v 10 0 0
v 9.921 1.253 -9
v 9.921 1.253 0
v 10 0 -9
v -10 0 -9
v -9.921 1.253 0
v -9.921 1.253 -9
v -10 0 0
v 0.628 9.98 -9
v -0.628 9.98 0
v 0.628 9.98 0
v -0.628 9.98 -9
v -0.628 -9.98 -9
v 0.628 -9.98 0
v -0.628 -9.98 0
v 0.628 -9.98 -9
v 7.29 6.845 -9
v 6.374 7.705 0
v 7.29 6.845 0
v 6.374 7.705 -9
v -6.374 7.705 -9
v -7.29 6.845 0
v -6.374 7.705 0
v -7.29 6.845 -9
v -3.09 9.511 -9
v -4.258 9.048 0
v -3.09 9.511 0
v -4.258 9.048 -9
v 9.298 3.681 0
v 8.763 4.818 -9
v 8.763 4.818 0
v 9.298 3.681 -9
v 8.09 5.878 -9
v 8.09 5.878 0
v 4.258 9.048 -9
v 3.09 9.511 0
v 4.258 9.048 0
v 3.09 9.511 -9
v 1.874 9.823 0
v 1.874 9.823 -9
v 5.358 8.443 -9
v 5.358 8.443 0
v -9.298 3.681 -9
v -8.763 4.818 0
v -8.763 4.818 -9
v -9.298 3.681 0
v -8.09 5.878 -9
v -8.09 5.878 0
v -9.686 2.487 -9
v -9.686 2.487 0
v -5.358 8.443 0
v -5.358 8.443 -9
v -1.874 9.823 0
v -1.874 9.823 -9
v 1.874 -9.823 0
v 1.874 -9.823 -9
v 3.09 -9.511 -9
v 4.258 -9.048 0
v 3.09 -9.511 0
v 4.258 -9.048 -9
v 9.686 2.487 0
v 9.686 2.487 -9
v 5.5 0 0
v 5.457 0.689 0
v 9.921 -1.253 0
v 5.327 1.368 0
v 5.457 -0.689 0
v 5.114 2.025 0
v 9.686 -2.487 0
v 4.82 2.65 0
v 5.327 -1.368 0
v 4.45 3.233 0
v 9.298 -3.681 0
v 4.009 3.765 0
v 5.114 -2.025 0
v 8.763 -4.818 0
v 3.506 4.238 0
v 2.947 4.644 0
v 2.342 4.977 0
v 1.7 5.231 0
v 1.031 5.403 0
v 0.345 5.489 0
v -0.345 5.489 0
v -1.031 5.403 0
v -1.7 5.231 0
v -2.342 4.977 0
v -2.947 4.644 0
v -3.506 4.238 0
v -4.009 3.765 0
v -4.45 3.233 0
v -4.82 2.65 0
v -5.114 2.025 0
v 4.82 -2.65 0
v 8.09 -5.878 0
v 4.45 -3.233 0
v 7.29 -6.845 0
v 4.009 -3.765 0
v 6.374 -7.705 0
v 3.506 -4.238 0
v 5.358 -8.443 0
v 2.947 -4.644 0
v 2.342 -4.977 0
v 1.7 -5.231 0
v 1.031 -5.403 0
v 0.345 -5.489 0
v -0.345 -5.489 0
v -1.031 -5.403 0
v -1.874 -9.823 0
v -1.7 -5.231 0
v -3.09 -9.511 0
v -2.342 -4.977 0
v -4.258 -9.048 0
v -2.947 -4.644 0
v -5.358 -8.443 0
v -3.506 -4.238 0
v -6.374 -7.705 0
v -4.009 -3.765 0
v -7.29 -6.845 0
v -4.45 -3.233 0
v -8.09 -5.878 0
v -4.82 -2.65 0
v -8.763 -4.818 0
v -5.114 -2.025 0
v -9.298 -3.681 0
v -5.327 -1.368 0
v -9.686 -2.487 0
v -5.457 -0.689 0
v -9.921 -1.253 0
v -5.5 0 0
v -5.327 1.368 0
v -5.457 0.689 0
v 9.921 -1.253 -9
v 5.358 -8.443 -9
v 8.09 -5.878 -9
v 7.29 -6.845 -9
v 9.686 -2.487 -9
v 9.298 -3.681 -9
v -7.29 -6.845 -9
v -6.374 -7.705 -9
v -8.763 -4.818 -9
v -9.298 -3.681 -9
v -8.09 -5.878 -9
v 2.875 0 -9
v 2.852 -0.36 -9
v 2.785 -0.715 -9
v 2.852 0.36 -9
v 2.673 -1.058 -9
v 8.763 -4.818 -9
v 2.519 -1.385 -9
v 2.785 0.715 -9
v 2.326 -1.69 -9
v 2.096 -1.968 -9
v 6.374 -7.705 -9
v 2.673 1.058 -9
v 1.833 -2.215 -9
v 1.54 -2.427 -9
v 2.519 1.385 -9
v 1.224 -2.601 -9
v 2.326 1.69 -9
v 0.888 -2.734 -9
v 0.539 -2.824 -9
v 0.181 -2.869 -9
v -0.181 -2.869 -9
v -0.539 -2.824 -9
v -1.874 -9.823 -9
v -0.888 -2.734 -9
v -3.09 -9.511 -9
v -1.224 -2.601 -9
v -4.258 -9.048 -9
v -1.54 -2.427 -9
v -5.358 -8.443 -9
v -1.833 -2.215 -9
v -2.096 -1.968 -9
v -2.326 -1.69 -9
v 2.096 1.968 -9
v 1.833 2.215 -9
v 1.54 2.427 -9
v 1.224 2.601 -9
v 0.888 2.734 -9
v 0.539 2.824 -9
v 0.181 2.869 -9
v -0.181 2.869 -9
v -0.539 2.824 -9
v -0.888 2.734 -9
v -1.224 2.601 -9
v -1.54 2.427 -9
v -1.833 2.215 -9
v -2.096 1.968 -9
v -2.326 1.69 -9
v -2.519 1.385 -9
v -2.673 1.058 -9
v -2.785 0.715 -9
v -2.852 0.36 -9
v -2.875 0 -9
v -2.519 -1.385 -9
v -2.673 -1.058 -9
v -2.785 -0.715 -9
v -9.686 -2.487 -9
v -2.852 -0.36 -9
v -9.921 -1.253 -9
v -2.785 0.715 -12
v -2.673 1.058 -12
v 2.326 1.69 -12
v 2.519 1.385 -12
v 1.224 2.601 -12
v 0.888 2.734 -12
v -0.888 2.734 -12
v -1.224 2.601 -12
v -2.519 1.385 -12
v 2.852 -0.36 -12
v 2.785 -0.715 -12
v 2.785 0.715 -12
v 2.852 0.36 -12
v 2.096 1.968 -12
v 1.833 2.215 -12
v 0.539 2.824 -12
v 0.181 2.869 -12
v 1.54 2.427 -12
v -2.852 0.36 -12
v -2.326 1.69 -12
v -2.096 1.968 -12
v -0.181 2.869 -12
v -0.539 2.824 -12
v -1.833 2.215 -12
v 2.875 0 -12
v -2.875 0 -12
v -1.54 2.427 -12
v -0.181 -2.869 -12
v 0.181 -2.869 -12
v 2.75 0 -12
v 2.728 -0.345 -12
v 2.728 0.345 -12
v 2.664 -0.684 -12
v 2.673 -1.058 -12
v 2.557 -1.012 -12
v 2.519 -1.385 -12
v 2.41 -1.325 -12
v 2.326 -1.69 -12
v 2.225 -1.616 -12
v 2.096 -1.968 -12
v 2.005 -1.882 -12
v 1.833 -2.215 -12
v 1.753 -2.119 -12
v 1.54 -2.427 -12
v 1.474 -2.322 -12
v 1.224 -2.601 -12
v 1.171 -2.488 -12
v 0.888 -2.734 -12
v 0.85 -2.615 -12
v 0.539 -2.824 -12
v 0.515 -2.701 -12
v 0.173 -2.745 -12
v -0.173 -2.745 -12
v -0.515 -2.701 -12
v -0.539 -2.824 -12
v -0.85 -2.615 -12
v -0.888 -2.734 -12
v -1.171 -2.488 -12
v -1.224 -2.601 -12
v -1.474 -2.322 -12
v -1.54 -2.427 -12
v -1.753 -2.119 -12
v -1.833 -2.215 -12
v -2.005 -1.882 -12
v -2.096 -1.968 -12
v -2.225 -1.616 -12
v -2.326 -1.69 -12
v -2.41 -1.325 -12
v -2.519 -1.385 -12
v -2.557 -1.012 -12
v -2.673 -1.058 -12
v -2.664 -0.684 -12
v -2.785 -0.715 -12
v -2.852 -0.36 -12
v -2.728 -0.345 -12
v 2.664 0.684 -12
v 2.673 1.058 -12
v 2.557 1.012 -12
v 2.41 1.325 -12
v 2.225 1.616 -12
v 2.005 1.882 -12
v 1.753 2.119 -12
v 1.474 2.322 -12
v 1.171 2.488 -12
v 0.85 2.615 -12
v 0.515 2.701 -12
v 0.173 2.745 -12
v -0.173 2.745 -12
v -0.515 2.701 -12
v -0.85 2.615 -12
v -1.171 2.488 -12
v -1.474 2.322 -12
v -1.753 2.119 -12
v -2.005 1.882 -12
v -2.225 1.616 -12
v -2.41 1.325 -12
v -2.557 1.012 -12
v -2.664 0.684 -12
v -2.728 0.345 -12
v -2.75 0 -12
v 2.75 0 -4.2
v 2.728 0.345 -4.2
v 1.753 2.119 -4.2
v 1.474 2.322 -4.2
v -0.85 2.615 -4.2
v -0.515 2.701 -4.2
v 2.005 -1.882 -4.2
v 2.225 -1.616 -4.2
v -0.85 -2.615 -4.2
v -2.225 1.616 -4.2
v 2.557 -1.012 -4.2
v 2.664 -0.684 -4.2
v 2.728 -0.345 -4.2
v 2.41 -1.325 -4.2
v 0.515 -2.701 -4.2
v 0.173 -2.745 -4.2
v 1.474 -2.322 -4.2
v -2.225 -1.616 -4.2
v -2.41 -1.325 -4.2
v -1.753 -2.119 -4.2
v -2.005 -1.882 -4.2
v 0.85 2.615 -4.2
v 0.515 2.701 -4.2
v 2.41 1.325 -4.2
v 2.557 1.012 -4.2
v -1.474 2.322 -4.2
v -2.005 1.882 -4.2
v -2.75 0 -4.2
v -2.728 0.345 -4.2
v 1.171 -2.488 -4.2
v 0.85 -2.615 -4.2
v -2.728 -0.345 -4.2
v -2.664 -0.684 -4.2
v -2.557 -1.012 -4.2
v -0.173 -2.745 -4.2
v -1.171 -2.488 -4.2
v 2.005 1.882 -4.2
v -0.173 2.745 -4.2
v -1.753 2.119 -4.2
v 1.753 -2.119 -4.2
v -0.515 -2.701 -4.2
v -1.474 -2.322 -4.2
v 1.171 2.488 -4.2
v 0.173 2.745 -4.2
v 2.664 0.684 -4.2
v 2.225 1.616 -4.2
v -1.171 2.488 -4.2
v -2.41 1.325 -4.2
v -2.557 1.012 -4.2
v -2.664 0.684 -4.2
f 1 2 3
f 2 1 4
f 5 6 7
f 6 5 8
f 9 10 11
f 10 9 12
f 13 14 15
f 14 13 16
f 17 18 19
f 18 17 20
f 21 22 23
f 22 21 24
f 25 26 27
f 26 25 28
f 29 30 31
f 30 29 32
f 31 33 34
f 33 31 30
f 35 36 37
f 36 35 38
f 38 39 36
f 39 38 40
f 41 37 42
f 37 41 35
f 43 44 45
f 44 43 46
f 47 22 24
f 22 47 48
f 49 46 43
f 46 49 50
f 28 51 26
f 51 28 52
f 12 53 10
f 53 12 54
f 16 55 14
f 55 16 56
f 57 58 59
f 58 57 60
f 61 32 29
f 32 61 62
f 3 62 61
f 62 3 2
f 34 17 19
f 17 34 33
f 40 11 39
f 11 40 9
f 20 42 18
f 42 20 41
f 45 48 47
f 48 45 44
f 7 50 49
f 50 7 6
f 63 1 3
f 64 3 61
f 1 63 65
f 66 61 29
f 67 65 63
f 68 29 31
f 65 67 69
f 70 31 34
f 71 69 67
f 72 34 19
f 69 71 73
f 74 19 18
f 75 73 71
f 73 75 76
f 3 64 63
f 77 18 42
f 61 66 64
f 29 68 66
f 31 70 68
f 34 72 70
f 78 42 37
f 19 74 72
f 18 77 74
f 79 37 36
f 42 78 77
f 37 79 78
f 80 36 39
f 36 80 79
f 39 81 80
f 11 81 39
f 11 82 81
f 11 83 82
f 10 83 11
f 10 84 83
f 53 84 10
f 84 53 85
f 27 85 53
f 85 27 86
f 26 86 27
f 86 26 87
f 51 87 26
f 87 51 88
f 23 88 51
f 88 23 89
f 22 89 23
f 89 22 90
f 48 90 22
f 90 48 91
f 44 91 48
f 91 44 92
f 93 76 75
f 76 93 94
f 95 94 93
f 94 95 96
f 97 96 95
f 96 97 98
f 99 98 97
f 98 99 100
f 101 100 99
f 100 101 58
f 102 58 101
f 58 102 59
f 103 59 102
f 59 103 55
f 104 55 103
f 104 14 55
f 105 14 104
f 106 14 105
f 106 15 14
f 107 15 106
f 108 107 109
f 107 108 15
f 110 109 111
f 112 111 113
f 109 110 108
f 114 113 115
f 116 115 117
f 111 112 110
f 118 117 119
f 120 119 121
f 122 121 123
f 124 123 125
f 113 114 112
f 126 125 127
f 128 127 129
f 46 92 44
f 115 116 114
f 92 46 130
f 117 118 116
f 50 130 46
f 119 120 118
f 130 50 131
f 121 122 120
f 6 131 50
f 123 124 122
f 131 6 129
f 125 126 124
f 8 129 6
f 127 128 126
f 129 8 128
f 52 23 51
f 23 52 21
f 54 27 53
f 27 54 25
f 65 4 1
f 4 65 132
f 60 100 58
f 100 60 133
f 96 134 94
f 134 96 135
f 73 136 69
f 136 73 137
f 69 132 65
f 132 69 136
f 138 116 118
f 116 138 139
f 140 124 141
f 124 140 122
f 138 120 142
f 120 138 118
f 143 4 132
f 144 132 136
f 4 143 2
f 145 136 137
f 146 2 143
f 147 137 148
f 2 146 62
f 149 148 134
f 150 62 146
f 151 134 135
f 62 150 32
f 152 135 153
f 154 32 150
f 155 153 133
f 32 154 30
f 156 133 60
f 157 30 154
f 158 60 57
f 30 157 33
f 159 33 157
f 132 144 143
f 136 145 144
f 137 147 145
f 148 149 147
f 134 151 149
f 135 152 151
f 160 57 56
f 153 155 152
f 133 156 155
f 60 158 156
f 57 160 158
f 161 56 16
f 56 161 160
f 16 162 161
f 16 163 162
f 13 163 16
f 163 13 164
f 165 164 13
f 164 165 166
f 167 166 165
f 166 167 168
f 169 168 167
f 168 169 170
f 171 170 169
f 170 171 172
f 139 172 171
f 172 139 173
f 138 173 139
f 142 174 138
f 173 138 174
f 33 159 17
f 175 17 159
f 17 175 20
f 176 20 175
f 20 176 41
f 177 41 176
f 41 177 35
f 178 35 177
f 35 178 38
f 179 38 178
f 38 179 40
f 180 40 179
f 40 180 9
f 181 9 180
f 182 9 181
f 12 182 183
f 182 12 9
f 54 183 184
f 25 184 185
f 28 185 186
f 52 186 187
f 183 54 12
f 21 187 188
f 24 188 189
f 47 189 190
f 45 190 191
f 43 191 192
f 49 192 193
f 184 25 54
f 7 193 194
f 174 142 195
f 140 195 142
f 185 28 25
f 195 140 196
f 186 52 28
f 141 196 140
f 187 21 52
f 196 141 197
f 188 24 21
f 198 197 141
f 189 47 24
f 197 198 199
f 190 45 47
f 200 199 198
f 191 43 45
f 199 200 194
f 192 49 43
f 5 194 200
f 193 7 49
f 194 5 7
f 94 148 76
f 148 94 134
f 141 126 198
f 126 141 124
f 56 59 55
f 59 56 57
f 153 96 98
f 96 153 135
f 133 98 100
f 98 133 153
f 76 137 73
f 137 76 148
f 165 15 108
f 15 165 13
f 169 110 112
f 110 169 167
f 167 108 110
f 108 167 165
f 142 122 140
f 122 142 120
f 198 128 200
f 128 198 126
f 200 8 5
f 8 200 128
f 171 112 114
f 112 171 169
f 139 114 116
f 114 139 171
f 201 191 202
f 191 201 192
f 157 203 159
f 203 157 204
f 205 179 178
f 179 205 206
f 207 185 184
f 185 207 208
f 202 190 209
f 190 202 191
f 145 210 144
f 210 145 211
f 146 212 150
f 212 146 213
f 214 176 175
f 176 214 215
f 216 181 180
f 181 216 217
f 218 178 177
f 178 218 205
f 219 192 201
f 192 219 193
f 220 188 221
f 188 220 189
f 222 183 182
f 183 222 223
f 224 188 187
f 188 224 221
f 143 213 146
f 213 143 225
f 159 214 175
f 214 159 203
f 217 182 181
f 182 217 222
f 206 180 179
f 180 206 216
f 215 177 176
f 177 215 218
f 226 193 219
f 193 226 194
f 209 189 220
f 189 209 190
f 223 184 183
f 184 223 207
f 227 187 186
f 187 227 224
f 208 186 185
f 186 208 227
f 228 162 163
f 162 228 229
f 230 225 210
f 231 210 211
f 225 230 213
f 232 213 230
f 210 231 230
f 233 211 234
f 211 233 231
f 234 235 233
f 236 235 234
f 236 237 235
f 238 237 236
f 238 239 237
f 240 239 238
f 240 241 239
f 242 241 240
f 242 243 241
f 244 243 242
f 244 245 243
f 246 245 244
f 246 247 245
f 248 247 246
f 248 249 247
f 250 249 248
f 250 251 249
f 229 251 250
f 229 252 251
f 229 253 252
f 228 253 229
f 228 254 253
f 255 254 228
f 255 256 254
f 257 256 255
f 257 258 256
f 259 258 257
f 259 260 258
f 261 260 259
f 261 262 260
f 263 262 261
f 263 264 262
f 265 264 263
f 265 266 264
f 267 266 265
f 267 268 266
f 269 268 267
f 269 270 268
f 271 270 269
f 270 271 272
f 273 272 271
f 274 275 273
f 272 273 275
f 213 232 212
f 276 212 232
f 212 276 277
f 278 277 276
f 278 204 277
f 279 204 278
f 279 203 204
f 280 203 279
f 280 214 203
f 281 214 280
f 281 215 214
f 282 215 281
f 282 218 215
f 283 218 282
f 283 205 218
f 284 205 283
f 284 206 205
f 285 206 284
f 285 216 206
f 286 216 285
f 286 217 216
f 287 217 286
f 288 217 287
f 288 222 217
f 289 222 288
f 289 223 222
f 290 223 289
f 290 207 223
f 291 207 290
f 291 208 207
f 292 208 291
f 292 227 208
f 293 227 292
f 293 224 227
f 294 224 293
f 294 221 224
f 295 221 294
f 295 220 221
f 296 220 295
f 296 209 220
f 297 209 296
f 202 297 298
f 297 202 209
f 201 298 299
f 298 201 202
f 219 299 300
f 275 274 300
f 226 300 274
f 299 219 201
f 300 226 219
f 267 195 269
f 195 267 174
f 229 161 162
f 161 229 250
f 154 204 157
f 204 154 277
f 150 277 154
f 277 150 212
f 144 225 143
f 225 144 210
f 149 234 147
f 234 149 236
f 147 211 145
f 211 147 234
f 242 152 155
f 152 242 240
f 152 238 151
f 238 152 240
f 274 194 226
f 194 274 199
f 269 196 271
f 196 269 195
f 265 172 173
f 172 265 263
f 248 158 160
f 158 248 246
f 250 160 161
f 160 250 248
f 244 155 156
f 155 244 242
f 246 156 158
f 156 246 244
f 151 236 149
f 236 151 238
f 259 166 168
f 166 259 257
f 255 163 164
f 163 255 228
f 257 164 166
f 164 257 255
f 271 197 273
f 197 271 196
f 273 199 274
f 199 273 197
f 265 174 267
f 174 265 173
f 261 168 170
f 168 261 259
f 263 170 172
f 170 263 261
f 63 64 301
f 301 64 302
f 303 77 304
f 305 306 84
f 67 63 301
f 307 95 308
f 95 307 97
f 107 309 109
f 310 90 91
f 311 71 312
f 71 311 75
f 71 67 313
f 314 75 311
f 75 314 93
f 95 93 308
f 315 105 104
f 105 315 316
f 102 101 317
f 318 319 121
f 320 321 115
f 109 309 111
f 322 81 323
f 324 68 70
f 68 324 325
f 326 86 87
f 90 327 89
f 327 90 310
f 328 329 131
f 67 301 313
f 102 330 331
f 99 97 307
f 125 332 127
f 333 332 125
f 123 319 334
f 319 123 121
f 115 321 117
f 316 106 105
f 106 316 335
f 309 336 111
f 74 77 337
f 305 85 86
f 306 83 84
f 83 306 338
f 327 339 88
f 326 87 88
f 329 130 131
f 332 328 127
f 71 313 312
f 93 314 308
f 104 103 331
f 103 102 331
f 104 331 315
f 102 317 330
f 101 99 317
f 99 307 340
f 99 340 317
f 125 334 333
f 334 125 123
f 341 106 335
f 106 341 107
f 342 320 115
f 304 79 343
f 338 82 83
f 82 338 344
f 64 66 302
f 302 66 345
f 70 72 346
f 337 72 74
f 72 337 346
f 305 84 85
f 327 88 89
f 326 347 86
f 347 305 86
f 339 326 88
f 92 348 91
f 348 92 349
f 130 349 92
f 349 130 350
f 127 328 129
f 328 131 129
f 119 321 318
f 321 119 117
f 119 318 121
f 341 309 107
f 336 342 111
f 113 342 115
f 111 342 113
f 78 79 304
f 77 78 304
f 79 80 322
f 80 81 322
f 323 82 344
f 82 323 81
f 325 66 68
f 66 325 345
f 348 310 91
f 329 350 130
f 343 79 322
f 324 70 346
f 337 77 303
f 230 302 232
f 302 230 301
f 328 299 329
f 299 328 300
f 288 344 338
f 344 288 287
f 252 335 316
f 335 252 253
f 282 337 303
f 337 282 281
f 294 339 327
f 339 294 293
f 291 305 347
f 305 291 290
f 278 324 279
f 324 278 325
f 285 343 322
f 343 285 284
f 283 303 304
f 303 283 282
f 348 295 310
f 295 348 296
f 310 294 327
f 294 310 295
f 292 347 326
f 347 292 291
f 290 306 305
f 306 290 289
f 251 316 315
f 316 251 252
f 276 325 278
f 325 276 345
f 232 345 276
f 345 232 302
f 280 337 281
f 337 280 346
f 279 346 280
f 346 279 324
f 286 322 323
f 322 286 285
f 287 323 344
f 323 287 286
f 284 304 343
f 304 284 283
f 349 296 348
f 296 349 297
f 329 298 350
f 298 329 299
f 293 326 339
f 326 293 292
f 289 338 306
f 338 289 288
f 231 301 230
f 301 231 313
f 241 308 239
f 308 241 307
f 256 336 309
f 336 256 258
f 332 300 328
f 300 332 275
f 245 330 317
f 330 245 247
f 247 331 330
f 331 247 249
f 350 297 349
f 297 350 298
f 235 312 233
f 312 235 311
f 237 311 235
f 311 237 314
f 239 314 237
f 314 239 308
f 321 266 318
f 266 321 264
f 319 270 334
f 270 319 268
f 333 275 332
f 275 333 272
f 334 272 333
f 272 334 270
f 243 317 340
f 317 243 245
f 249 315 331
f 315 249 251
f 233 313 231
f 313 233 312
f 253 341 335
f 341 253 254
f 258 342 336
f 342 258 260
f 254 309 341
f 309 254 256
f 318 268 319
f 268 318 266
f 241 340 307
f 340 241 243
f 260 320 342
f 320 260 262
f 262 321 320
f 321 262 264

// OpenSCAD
$fn = 50;

difference() {
	union() {
		translate(v = [0, 0, -9.0]) {
			cylinder(h = 9, r = 10.0);
		}
		#translate(v = [0, 0, -12.0]) {
			cylinder(h = 12, r = 2.875);
		}
	}
	union() {
		translate(v = [0, 0, 0]) {
			rotate(a = [0, 0, 0]) {
				difference() {
					union() {
						translate(v = [0, 0, -12.0]) {
							cylinder(h = 12, r = 2.25);
						}
						translate(v = [0, 0, -4.2]) {
							cylinder(h = 4.2, r1 = 2.75, r2 = 5.5);
						}
						translate(v = [0, 0, -12.0]) {
							cylinder(h = 12, r = 2.75);
						}
						translate(v = [0, 0, -12.0]) {
							cylinder(h = 12, r = 2.25);
						}
					}
					union();
				}
			}
		}
	}
}
